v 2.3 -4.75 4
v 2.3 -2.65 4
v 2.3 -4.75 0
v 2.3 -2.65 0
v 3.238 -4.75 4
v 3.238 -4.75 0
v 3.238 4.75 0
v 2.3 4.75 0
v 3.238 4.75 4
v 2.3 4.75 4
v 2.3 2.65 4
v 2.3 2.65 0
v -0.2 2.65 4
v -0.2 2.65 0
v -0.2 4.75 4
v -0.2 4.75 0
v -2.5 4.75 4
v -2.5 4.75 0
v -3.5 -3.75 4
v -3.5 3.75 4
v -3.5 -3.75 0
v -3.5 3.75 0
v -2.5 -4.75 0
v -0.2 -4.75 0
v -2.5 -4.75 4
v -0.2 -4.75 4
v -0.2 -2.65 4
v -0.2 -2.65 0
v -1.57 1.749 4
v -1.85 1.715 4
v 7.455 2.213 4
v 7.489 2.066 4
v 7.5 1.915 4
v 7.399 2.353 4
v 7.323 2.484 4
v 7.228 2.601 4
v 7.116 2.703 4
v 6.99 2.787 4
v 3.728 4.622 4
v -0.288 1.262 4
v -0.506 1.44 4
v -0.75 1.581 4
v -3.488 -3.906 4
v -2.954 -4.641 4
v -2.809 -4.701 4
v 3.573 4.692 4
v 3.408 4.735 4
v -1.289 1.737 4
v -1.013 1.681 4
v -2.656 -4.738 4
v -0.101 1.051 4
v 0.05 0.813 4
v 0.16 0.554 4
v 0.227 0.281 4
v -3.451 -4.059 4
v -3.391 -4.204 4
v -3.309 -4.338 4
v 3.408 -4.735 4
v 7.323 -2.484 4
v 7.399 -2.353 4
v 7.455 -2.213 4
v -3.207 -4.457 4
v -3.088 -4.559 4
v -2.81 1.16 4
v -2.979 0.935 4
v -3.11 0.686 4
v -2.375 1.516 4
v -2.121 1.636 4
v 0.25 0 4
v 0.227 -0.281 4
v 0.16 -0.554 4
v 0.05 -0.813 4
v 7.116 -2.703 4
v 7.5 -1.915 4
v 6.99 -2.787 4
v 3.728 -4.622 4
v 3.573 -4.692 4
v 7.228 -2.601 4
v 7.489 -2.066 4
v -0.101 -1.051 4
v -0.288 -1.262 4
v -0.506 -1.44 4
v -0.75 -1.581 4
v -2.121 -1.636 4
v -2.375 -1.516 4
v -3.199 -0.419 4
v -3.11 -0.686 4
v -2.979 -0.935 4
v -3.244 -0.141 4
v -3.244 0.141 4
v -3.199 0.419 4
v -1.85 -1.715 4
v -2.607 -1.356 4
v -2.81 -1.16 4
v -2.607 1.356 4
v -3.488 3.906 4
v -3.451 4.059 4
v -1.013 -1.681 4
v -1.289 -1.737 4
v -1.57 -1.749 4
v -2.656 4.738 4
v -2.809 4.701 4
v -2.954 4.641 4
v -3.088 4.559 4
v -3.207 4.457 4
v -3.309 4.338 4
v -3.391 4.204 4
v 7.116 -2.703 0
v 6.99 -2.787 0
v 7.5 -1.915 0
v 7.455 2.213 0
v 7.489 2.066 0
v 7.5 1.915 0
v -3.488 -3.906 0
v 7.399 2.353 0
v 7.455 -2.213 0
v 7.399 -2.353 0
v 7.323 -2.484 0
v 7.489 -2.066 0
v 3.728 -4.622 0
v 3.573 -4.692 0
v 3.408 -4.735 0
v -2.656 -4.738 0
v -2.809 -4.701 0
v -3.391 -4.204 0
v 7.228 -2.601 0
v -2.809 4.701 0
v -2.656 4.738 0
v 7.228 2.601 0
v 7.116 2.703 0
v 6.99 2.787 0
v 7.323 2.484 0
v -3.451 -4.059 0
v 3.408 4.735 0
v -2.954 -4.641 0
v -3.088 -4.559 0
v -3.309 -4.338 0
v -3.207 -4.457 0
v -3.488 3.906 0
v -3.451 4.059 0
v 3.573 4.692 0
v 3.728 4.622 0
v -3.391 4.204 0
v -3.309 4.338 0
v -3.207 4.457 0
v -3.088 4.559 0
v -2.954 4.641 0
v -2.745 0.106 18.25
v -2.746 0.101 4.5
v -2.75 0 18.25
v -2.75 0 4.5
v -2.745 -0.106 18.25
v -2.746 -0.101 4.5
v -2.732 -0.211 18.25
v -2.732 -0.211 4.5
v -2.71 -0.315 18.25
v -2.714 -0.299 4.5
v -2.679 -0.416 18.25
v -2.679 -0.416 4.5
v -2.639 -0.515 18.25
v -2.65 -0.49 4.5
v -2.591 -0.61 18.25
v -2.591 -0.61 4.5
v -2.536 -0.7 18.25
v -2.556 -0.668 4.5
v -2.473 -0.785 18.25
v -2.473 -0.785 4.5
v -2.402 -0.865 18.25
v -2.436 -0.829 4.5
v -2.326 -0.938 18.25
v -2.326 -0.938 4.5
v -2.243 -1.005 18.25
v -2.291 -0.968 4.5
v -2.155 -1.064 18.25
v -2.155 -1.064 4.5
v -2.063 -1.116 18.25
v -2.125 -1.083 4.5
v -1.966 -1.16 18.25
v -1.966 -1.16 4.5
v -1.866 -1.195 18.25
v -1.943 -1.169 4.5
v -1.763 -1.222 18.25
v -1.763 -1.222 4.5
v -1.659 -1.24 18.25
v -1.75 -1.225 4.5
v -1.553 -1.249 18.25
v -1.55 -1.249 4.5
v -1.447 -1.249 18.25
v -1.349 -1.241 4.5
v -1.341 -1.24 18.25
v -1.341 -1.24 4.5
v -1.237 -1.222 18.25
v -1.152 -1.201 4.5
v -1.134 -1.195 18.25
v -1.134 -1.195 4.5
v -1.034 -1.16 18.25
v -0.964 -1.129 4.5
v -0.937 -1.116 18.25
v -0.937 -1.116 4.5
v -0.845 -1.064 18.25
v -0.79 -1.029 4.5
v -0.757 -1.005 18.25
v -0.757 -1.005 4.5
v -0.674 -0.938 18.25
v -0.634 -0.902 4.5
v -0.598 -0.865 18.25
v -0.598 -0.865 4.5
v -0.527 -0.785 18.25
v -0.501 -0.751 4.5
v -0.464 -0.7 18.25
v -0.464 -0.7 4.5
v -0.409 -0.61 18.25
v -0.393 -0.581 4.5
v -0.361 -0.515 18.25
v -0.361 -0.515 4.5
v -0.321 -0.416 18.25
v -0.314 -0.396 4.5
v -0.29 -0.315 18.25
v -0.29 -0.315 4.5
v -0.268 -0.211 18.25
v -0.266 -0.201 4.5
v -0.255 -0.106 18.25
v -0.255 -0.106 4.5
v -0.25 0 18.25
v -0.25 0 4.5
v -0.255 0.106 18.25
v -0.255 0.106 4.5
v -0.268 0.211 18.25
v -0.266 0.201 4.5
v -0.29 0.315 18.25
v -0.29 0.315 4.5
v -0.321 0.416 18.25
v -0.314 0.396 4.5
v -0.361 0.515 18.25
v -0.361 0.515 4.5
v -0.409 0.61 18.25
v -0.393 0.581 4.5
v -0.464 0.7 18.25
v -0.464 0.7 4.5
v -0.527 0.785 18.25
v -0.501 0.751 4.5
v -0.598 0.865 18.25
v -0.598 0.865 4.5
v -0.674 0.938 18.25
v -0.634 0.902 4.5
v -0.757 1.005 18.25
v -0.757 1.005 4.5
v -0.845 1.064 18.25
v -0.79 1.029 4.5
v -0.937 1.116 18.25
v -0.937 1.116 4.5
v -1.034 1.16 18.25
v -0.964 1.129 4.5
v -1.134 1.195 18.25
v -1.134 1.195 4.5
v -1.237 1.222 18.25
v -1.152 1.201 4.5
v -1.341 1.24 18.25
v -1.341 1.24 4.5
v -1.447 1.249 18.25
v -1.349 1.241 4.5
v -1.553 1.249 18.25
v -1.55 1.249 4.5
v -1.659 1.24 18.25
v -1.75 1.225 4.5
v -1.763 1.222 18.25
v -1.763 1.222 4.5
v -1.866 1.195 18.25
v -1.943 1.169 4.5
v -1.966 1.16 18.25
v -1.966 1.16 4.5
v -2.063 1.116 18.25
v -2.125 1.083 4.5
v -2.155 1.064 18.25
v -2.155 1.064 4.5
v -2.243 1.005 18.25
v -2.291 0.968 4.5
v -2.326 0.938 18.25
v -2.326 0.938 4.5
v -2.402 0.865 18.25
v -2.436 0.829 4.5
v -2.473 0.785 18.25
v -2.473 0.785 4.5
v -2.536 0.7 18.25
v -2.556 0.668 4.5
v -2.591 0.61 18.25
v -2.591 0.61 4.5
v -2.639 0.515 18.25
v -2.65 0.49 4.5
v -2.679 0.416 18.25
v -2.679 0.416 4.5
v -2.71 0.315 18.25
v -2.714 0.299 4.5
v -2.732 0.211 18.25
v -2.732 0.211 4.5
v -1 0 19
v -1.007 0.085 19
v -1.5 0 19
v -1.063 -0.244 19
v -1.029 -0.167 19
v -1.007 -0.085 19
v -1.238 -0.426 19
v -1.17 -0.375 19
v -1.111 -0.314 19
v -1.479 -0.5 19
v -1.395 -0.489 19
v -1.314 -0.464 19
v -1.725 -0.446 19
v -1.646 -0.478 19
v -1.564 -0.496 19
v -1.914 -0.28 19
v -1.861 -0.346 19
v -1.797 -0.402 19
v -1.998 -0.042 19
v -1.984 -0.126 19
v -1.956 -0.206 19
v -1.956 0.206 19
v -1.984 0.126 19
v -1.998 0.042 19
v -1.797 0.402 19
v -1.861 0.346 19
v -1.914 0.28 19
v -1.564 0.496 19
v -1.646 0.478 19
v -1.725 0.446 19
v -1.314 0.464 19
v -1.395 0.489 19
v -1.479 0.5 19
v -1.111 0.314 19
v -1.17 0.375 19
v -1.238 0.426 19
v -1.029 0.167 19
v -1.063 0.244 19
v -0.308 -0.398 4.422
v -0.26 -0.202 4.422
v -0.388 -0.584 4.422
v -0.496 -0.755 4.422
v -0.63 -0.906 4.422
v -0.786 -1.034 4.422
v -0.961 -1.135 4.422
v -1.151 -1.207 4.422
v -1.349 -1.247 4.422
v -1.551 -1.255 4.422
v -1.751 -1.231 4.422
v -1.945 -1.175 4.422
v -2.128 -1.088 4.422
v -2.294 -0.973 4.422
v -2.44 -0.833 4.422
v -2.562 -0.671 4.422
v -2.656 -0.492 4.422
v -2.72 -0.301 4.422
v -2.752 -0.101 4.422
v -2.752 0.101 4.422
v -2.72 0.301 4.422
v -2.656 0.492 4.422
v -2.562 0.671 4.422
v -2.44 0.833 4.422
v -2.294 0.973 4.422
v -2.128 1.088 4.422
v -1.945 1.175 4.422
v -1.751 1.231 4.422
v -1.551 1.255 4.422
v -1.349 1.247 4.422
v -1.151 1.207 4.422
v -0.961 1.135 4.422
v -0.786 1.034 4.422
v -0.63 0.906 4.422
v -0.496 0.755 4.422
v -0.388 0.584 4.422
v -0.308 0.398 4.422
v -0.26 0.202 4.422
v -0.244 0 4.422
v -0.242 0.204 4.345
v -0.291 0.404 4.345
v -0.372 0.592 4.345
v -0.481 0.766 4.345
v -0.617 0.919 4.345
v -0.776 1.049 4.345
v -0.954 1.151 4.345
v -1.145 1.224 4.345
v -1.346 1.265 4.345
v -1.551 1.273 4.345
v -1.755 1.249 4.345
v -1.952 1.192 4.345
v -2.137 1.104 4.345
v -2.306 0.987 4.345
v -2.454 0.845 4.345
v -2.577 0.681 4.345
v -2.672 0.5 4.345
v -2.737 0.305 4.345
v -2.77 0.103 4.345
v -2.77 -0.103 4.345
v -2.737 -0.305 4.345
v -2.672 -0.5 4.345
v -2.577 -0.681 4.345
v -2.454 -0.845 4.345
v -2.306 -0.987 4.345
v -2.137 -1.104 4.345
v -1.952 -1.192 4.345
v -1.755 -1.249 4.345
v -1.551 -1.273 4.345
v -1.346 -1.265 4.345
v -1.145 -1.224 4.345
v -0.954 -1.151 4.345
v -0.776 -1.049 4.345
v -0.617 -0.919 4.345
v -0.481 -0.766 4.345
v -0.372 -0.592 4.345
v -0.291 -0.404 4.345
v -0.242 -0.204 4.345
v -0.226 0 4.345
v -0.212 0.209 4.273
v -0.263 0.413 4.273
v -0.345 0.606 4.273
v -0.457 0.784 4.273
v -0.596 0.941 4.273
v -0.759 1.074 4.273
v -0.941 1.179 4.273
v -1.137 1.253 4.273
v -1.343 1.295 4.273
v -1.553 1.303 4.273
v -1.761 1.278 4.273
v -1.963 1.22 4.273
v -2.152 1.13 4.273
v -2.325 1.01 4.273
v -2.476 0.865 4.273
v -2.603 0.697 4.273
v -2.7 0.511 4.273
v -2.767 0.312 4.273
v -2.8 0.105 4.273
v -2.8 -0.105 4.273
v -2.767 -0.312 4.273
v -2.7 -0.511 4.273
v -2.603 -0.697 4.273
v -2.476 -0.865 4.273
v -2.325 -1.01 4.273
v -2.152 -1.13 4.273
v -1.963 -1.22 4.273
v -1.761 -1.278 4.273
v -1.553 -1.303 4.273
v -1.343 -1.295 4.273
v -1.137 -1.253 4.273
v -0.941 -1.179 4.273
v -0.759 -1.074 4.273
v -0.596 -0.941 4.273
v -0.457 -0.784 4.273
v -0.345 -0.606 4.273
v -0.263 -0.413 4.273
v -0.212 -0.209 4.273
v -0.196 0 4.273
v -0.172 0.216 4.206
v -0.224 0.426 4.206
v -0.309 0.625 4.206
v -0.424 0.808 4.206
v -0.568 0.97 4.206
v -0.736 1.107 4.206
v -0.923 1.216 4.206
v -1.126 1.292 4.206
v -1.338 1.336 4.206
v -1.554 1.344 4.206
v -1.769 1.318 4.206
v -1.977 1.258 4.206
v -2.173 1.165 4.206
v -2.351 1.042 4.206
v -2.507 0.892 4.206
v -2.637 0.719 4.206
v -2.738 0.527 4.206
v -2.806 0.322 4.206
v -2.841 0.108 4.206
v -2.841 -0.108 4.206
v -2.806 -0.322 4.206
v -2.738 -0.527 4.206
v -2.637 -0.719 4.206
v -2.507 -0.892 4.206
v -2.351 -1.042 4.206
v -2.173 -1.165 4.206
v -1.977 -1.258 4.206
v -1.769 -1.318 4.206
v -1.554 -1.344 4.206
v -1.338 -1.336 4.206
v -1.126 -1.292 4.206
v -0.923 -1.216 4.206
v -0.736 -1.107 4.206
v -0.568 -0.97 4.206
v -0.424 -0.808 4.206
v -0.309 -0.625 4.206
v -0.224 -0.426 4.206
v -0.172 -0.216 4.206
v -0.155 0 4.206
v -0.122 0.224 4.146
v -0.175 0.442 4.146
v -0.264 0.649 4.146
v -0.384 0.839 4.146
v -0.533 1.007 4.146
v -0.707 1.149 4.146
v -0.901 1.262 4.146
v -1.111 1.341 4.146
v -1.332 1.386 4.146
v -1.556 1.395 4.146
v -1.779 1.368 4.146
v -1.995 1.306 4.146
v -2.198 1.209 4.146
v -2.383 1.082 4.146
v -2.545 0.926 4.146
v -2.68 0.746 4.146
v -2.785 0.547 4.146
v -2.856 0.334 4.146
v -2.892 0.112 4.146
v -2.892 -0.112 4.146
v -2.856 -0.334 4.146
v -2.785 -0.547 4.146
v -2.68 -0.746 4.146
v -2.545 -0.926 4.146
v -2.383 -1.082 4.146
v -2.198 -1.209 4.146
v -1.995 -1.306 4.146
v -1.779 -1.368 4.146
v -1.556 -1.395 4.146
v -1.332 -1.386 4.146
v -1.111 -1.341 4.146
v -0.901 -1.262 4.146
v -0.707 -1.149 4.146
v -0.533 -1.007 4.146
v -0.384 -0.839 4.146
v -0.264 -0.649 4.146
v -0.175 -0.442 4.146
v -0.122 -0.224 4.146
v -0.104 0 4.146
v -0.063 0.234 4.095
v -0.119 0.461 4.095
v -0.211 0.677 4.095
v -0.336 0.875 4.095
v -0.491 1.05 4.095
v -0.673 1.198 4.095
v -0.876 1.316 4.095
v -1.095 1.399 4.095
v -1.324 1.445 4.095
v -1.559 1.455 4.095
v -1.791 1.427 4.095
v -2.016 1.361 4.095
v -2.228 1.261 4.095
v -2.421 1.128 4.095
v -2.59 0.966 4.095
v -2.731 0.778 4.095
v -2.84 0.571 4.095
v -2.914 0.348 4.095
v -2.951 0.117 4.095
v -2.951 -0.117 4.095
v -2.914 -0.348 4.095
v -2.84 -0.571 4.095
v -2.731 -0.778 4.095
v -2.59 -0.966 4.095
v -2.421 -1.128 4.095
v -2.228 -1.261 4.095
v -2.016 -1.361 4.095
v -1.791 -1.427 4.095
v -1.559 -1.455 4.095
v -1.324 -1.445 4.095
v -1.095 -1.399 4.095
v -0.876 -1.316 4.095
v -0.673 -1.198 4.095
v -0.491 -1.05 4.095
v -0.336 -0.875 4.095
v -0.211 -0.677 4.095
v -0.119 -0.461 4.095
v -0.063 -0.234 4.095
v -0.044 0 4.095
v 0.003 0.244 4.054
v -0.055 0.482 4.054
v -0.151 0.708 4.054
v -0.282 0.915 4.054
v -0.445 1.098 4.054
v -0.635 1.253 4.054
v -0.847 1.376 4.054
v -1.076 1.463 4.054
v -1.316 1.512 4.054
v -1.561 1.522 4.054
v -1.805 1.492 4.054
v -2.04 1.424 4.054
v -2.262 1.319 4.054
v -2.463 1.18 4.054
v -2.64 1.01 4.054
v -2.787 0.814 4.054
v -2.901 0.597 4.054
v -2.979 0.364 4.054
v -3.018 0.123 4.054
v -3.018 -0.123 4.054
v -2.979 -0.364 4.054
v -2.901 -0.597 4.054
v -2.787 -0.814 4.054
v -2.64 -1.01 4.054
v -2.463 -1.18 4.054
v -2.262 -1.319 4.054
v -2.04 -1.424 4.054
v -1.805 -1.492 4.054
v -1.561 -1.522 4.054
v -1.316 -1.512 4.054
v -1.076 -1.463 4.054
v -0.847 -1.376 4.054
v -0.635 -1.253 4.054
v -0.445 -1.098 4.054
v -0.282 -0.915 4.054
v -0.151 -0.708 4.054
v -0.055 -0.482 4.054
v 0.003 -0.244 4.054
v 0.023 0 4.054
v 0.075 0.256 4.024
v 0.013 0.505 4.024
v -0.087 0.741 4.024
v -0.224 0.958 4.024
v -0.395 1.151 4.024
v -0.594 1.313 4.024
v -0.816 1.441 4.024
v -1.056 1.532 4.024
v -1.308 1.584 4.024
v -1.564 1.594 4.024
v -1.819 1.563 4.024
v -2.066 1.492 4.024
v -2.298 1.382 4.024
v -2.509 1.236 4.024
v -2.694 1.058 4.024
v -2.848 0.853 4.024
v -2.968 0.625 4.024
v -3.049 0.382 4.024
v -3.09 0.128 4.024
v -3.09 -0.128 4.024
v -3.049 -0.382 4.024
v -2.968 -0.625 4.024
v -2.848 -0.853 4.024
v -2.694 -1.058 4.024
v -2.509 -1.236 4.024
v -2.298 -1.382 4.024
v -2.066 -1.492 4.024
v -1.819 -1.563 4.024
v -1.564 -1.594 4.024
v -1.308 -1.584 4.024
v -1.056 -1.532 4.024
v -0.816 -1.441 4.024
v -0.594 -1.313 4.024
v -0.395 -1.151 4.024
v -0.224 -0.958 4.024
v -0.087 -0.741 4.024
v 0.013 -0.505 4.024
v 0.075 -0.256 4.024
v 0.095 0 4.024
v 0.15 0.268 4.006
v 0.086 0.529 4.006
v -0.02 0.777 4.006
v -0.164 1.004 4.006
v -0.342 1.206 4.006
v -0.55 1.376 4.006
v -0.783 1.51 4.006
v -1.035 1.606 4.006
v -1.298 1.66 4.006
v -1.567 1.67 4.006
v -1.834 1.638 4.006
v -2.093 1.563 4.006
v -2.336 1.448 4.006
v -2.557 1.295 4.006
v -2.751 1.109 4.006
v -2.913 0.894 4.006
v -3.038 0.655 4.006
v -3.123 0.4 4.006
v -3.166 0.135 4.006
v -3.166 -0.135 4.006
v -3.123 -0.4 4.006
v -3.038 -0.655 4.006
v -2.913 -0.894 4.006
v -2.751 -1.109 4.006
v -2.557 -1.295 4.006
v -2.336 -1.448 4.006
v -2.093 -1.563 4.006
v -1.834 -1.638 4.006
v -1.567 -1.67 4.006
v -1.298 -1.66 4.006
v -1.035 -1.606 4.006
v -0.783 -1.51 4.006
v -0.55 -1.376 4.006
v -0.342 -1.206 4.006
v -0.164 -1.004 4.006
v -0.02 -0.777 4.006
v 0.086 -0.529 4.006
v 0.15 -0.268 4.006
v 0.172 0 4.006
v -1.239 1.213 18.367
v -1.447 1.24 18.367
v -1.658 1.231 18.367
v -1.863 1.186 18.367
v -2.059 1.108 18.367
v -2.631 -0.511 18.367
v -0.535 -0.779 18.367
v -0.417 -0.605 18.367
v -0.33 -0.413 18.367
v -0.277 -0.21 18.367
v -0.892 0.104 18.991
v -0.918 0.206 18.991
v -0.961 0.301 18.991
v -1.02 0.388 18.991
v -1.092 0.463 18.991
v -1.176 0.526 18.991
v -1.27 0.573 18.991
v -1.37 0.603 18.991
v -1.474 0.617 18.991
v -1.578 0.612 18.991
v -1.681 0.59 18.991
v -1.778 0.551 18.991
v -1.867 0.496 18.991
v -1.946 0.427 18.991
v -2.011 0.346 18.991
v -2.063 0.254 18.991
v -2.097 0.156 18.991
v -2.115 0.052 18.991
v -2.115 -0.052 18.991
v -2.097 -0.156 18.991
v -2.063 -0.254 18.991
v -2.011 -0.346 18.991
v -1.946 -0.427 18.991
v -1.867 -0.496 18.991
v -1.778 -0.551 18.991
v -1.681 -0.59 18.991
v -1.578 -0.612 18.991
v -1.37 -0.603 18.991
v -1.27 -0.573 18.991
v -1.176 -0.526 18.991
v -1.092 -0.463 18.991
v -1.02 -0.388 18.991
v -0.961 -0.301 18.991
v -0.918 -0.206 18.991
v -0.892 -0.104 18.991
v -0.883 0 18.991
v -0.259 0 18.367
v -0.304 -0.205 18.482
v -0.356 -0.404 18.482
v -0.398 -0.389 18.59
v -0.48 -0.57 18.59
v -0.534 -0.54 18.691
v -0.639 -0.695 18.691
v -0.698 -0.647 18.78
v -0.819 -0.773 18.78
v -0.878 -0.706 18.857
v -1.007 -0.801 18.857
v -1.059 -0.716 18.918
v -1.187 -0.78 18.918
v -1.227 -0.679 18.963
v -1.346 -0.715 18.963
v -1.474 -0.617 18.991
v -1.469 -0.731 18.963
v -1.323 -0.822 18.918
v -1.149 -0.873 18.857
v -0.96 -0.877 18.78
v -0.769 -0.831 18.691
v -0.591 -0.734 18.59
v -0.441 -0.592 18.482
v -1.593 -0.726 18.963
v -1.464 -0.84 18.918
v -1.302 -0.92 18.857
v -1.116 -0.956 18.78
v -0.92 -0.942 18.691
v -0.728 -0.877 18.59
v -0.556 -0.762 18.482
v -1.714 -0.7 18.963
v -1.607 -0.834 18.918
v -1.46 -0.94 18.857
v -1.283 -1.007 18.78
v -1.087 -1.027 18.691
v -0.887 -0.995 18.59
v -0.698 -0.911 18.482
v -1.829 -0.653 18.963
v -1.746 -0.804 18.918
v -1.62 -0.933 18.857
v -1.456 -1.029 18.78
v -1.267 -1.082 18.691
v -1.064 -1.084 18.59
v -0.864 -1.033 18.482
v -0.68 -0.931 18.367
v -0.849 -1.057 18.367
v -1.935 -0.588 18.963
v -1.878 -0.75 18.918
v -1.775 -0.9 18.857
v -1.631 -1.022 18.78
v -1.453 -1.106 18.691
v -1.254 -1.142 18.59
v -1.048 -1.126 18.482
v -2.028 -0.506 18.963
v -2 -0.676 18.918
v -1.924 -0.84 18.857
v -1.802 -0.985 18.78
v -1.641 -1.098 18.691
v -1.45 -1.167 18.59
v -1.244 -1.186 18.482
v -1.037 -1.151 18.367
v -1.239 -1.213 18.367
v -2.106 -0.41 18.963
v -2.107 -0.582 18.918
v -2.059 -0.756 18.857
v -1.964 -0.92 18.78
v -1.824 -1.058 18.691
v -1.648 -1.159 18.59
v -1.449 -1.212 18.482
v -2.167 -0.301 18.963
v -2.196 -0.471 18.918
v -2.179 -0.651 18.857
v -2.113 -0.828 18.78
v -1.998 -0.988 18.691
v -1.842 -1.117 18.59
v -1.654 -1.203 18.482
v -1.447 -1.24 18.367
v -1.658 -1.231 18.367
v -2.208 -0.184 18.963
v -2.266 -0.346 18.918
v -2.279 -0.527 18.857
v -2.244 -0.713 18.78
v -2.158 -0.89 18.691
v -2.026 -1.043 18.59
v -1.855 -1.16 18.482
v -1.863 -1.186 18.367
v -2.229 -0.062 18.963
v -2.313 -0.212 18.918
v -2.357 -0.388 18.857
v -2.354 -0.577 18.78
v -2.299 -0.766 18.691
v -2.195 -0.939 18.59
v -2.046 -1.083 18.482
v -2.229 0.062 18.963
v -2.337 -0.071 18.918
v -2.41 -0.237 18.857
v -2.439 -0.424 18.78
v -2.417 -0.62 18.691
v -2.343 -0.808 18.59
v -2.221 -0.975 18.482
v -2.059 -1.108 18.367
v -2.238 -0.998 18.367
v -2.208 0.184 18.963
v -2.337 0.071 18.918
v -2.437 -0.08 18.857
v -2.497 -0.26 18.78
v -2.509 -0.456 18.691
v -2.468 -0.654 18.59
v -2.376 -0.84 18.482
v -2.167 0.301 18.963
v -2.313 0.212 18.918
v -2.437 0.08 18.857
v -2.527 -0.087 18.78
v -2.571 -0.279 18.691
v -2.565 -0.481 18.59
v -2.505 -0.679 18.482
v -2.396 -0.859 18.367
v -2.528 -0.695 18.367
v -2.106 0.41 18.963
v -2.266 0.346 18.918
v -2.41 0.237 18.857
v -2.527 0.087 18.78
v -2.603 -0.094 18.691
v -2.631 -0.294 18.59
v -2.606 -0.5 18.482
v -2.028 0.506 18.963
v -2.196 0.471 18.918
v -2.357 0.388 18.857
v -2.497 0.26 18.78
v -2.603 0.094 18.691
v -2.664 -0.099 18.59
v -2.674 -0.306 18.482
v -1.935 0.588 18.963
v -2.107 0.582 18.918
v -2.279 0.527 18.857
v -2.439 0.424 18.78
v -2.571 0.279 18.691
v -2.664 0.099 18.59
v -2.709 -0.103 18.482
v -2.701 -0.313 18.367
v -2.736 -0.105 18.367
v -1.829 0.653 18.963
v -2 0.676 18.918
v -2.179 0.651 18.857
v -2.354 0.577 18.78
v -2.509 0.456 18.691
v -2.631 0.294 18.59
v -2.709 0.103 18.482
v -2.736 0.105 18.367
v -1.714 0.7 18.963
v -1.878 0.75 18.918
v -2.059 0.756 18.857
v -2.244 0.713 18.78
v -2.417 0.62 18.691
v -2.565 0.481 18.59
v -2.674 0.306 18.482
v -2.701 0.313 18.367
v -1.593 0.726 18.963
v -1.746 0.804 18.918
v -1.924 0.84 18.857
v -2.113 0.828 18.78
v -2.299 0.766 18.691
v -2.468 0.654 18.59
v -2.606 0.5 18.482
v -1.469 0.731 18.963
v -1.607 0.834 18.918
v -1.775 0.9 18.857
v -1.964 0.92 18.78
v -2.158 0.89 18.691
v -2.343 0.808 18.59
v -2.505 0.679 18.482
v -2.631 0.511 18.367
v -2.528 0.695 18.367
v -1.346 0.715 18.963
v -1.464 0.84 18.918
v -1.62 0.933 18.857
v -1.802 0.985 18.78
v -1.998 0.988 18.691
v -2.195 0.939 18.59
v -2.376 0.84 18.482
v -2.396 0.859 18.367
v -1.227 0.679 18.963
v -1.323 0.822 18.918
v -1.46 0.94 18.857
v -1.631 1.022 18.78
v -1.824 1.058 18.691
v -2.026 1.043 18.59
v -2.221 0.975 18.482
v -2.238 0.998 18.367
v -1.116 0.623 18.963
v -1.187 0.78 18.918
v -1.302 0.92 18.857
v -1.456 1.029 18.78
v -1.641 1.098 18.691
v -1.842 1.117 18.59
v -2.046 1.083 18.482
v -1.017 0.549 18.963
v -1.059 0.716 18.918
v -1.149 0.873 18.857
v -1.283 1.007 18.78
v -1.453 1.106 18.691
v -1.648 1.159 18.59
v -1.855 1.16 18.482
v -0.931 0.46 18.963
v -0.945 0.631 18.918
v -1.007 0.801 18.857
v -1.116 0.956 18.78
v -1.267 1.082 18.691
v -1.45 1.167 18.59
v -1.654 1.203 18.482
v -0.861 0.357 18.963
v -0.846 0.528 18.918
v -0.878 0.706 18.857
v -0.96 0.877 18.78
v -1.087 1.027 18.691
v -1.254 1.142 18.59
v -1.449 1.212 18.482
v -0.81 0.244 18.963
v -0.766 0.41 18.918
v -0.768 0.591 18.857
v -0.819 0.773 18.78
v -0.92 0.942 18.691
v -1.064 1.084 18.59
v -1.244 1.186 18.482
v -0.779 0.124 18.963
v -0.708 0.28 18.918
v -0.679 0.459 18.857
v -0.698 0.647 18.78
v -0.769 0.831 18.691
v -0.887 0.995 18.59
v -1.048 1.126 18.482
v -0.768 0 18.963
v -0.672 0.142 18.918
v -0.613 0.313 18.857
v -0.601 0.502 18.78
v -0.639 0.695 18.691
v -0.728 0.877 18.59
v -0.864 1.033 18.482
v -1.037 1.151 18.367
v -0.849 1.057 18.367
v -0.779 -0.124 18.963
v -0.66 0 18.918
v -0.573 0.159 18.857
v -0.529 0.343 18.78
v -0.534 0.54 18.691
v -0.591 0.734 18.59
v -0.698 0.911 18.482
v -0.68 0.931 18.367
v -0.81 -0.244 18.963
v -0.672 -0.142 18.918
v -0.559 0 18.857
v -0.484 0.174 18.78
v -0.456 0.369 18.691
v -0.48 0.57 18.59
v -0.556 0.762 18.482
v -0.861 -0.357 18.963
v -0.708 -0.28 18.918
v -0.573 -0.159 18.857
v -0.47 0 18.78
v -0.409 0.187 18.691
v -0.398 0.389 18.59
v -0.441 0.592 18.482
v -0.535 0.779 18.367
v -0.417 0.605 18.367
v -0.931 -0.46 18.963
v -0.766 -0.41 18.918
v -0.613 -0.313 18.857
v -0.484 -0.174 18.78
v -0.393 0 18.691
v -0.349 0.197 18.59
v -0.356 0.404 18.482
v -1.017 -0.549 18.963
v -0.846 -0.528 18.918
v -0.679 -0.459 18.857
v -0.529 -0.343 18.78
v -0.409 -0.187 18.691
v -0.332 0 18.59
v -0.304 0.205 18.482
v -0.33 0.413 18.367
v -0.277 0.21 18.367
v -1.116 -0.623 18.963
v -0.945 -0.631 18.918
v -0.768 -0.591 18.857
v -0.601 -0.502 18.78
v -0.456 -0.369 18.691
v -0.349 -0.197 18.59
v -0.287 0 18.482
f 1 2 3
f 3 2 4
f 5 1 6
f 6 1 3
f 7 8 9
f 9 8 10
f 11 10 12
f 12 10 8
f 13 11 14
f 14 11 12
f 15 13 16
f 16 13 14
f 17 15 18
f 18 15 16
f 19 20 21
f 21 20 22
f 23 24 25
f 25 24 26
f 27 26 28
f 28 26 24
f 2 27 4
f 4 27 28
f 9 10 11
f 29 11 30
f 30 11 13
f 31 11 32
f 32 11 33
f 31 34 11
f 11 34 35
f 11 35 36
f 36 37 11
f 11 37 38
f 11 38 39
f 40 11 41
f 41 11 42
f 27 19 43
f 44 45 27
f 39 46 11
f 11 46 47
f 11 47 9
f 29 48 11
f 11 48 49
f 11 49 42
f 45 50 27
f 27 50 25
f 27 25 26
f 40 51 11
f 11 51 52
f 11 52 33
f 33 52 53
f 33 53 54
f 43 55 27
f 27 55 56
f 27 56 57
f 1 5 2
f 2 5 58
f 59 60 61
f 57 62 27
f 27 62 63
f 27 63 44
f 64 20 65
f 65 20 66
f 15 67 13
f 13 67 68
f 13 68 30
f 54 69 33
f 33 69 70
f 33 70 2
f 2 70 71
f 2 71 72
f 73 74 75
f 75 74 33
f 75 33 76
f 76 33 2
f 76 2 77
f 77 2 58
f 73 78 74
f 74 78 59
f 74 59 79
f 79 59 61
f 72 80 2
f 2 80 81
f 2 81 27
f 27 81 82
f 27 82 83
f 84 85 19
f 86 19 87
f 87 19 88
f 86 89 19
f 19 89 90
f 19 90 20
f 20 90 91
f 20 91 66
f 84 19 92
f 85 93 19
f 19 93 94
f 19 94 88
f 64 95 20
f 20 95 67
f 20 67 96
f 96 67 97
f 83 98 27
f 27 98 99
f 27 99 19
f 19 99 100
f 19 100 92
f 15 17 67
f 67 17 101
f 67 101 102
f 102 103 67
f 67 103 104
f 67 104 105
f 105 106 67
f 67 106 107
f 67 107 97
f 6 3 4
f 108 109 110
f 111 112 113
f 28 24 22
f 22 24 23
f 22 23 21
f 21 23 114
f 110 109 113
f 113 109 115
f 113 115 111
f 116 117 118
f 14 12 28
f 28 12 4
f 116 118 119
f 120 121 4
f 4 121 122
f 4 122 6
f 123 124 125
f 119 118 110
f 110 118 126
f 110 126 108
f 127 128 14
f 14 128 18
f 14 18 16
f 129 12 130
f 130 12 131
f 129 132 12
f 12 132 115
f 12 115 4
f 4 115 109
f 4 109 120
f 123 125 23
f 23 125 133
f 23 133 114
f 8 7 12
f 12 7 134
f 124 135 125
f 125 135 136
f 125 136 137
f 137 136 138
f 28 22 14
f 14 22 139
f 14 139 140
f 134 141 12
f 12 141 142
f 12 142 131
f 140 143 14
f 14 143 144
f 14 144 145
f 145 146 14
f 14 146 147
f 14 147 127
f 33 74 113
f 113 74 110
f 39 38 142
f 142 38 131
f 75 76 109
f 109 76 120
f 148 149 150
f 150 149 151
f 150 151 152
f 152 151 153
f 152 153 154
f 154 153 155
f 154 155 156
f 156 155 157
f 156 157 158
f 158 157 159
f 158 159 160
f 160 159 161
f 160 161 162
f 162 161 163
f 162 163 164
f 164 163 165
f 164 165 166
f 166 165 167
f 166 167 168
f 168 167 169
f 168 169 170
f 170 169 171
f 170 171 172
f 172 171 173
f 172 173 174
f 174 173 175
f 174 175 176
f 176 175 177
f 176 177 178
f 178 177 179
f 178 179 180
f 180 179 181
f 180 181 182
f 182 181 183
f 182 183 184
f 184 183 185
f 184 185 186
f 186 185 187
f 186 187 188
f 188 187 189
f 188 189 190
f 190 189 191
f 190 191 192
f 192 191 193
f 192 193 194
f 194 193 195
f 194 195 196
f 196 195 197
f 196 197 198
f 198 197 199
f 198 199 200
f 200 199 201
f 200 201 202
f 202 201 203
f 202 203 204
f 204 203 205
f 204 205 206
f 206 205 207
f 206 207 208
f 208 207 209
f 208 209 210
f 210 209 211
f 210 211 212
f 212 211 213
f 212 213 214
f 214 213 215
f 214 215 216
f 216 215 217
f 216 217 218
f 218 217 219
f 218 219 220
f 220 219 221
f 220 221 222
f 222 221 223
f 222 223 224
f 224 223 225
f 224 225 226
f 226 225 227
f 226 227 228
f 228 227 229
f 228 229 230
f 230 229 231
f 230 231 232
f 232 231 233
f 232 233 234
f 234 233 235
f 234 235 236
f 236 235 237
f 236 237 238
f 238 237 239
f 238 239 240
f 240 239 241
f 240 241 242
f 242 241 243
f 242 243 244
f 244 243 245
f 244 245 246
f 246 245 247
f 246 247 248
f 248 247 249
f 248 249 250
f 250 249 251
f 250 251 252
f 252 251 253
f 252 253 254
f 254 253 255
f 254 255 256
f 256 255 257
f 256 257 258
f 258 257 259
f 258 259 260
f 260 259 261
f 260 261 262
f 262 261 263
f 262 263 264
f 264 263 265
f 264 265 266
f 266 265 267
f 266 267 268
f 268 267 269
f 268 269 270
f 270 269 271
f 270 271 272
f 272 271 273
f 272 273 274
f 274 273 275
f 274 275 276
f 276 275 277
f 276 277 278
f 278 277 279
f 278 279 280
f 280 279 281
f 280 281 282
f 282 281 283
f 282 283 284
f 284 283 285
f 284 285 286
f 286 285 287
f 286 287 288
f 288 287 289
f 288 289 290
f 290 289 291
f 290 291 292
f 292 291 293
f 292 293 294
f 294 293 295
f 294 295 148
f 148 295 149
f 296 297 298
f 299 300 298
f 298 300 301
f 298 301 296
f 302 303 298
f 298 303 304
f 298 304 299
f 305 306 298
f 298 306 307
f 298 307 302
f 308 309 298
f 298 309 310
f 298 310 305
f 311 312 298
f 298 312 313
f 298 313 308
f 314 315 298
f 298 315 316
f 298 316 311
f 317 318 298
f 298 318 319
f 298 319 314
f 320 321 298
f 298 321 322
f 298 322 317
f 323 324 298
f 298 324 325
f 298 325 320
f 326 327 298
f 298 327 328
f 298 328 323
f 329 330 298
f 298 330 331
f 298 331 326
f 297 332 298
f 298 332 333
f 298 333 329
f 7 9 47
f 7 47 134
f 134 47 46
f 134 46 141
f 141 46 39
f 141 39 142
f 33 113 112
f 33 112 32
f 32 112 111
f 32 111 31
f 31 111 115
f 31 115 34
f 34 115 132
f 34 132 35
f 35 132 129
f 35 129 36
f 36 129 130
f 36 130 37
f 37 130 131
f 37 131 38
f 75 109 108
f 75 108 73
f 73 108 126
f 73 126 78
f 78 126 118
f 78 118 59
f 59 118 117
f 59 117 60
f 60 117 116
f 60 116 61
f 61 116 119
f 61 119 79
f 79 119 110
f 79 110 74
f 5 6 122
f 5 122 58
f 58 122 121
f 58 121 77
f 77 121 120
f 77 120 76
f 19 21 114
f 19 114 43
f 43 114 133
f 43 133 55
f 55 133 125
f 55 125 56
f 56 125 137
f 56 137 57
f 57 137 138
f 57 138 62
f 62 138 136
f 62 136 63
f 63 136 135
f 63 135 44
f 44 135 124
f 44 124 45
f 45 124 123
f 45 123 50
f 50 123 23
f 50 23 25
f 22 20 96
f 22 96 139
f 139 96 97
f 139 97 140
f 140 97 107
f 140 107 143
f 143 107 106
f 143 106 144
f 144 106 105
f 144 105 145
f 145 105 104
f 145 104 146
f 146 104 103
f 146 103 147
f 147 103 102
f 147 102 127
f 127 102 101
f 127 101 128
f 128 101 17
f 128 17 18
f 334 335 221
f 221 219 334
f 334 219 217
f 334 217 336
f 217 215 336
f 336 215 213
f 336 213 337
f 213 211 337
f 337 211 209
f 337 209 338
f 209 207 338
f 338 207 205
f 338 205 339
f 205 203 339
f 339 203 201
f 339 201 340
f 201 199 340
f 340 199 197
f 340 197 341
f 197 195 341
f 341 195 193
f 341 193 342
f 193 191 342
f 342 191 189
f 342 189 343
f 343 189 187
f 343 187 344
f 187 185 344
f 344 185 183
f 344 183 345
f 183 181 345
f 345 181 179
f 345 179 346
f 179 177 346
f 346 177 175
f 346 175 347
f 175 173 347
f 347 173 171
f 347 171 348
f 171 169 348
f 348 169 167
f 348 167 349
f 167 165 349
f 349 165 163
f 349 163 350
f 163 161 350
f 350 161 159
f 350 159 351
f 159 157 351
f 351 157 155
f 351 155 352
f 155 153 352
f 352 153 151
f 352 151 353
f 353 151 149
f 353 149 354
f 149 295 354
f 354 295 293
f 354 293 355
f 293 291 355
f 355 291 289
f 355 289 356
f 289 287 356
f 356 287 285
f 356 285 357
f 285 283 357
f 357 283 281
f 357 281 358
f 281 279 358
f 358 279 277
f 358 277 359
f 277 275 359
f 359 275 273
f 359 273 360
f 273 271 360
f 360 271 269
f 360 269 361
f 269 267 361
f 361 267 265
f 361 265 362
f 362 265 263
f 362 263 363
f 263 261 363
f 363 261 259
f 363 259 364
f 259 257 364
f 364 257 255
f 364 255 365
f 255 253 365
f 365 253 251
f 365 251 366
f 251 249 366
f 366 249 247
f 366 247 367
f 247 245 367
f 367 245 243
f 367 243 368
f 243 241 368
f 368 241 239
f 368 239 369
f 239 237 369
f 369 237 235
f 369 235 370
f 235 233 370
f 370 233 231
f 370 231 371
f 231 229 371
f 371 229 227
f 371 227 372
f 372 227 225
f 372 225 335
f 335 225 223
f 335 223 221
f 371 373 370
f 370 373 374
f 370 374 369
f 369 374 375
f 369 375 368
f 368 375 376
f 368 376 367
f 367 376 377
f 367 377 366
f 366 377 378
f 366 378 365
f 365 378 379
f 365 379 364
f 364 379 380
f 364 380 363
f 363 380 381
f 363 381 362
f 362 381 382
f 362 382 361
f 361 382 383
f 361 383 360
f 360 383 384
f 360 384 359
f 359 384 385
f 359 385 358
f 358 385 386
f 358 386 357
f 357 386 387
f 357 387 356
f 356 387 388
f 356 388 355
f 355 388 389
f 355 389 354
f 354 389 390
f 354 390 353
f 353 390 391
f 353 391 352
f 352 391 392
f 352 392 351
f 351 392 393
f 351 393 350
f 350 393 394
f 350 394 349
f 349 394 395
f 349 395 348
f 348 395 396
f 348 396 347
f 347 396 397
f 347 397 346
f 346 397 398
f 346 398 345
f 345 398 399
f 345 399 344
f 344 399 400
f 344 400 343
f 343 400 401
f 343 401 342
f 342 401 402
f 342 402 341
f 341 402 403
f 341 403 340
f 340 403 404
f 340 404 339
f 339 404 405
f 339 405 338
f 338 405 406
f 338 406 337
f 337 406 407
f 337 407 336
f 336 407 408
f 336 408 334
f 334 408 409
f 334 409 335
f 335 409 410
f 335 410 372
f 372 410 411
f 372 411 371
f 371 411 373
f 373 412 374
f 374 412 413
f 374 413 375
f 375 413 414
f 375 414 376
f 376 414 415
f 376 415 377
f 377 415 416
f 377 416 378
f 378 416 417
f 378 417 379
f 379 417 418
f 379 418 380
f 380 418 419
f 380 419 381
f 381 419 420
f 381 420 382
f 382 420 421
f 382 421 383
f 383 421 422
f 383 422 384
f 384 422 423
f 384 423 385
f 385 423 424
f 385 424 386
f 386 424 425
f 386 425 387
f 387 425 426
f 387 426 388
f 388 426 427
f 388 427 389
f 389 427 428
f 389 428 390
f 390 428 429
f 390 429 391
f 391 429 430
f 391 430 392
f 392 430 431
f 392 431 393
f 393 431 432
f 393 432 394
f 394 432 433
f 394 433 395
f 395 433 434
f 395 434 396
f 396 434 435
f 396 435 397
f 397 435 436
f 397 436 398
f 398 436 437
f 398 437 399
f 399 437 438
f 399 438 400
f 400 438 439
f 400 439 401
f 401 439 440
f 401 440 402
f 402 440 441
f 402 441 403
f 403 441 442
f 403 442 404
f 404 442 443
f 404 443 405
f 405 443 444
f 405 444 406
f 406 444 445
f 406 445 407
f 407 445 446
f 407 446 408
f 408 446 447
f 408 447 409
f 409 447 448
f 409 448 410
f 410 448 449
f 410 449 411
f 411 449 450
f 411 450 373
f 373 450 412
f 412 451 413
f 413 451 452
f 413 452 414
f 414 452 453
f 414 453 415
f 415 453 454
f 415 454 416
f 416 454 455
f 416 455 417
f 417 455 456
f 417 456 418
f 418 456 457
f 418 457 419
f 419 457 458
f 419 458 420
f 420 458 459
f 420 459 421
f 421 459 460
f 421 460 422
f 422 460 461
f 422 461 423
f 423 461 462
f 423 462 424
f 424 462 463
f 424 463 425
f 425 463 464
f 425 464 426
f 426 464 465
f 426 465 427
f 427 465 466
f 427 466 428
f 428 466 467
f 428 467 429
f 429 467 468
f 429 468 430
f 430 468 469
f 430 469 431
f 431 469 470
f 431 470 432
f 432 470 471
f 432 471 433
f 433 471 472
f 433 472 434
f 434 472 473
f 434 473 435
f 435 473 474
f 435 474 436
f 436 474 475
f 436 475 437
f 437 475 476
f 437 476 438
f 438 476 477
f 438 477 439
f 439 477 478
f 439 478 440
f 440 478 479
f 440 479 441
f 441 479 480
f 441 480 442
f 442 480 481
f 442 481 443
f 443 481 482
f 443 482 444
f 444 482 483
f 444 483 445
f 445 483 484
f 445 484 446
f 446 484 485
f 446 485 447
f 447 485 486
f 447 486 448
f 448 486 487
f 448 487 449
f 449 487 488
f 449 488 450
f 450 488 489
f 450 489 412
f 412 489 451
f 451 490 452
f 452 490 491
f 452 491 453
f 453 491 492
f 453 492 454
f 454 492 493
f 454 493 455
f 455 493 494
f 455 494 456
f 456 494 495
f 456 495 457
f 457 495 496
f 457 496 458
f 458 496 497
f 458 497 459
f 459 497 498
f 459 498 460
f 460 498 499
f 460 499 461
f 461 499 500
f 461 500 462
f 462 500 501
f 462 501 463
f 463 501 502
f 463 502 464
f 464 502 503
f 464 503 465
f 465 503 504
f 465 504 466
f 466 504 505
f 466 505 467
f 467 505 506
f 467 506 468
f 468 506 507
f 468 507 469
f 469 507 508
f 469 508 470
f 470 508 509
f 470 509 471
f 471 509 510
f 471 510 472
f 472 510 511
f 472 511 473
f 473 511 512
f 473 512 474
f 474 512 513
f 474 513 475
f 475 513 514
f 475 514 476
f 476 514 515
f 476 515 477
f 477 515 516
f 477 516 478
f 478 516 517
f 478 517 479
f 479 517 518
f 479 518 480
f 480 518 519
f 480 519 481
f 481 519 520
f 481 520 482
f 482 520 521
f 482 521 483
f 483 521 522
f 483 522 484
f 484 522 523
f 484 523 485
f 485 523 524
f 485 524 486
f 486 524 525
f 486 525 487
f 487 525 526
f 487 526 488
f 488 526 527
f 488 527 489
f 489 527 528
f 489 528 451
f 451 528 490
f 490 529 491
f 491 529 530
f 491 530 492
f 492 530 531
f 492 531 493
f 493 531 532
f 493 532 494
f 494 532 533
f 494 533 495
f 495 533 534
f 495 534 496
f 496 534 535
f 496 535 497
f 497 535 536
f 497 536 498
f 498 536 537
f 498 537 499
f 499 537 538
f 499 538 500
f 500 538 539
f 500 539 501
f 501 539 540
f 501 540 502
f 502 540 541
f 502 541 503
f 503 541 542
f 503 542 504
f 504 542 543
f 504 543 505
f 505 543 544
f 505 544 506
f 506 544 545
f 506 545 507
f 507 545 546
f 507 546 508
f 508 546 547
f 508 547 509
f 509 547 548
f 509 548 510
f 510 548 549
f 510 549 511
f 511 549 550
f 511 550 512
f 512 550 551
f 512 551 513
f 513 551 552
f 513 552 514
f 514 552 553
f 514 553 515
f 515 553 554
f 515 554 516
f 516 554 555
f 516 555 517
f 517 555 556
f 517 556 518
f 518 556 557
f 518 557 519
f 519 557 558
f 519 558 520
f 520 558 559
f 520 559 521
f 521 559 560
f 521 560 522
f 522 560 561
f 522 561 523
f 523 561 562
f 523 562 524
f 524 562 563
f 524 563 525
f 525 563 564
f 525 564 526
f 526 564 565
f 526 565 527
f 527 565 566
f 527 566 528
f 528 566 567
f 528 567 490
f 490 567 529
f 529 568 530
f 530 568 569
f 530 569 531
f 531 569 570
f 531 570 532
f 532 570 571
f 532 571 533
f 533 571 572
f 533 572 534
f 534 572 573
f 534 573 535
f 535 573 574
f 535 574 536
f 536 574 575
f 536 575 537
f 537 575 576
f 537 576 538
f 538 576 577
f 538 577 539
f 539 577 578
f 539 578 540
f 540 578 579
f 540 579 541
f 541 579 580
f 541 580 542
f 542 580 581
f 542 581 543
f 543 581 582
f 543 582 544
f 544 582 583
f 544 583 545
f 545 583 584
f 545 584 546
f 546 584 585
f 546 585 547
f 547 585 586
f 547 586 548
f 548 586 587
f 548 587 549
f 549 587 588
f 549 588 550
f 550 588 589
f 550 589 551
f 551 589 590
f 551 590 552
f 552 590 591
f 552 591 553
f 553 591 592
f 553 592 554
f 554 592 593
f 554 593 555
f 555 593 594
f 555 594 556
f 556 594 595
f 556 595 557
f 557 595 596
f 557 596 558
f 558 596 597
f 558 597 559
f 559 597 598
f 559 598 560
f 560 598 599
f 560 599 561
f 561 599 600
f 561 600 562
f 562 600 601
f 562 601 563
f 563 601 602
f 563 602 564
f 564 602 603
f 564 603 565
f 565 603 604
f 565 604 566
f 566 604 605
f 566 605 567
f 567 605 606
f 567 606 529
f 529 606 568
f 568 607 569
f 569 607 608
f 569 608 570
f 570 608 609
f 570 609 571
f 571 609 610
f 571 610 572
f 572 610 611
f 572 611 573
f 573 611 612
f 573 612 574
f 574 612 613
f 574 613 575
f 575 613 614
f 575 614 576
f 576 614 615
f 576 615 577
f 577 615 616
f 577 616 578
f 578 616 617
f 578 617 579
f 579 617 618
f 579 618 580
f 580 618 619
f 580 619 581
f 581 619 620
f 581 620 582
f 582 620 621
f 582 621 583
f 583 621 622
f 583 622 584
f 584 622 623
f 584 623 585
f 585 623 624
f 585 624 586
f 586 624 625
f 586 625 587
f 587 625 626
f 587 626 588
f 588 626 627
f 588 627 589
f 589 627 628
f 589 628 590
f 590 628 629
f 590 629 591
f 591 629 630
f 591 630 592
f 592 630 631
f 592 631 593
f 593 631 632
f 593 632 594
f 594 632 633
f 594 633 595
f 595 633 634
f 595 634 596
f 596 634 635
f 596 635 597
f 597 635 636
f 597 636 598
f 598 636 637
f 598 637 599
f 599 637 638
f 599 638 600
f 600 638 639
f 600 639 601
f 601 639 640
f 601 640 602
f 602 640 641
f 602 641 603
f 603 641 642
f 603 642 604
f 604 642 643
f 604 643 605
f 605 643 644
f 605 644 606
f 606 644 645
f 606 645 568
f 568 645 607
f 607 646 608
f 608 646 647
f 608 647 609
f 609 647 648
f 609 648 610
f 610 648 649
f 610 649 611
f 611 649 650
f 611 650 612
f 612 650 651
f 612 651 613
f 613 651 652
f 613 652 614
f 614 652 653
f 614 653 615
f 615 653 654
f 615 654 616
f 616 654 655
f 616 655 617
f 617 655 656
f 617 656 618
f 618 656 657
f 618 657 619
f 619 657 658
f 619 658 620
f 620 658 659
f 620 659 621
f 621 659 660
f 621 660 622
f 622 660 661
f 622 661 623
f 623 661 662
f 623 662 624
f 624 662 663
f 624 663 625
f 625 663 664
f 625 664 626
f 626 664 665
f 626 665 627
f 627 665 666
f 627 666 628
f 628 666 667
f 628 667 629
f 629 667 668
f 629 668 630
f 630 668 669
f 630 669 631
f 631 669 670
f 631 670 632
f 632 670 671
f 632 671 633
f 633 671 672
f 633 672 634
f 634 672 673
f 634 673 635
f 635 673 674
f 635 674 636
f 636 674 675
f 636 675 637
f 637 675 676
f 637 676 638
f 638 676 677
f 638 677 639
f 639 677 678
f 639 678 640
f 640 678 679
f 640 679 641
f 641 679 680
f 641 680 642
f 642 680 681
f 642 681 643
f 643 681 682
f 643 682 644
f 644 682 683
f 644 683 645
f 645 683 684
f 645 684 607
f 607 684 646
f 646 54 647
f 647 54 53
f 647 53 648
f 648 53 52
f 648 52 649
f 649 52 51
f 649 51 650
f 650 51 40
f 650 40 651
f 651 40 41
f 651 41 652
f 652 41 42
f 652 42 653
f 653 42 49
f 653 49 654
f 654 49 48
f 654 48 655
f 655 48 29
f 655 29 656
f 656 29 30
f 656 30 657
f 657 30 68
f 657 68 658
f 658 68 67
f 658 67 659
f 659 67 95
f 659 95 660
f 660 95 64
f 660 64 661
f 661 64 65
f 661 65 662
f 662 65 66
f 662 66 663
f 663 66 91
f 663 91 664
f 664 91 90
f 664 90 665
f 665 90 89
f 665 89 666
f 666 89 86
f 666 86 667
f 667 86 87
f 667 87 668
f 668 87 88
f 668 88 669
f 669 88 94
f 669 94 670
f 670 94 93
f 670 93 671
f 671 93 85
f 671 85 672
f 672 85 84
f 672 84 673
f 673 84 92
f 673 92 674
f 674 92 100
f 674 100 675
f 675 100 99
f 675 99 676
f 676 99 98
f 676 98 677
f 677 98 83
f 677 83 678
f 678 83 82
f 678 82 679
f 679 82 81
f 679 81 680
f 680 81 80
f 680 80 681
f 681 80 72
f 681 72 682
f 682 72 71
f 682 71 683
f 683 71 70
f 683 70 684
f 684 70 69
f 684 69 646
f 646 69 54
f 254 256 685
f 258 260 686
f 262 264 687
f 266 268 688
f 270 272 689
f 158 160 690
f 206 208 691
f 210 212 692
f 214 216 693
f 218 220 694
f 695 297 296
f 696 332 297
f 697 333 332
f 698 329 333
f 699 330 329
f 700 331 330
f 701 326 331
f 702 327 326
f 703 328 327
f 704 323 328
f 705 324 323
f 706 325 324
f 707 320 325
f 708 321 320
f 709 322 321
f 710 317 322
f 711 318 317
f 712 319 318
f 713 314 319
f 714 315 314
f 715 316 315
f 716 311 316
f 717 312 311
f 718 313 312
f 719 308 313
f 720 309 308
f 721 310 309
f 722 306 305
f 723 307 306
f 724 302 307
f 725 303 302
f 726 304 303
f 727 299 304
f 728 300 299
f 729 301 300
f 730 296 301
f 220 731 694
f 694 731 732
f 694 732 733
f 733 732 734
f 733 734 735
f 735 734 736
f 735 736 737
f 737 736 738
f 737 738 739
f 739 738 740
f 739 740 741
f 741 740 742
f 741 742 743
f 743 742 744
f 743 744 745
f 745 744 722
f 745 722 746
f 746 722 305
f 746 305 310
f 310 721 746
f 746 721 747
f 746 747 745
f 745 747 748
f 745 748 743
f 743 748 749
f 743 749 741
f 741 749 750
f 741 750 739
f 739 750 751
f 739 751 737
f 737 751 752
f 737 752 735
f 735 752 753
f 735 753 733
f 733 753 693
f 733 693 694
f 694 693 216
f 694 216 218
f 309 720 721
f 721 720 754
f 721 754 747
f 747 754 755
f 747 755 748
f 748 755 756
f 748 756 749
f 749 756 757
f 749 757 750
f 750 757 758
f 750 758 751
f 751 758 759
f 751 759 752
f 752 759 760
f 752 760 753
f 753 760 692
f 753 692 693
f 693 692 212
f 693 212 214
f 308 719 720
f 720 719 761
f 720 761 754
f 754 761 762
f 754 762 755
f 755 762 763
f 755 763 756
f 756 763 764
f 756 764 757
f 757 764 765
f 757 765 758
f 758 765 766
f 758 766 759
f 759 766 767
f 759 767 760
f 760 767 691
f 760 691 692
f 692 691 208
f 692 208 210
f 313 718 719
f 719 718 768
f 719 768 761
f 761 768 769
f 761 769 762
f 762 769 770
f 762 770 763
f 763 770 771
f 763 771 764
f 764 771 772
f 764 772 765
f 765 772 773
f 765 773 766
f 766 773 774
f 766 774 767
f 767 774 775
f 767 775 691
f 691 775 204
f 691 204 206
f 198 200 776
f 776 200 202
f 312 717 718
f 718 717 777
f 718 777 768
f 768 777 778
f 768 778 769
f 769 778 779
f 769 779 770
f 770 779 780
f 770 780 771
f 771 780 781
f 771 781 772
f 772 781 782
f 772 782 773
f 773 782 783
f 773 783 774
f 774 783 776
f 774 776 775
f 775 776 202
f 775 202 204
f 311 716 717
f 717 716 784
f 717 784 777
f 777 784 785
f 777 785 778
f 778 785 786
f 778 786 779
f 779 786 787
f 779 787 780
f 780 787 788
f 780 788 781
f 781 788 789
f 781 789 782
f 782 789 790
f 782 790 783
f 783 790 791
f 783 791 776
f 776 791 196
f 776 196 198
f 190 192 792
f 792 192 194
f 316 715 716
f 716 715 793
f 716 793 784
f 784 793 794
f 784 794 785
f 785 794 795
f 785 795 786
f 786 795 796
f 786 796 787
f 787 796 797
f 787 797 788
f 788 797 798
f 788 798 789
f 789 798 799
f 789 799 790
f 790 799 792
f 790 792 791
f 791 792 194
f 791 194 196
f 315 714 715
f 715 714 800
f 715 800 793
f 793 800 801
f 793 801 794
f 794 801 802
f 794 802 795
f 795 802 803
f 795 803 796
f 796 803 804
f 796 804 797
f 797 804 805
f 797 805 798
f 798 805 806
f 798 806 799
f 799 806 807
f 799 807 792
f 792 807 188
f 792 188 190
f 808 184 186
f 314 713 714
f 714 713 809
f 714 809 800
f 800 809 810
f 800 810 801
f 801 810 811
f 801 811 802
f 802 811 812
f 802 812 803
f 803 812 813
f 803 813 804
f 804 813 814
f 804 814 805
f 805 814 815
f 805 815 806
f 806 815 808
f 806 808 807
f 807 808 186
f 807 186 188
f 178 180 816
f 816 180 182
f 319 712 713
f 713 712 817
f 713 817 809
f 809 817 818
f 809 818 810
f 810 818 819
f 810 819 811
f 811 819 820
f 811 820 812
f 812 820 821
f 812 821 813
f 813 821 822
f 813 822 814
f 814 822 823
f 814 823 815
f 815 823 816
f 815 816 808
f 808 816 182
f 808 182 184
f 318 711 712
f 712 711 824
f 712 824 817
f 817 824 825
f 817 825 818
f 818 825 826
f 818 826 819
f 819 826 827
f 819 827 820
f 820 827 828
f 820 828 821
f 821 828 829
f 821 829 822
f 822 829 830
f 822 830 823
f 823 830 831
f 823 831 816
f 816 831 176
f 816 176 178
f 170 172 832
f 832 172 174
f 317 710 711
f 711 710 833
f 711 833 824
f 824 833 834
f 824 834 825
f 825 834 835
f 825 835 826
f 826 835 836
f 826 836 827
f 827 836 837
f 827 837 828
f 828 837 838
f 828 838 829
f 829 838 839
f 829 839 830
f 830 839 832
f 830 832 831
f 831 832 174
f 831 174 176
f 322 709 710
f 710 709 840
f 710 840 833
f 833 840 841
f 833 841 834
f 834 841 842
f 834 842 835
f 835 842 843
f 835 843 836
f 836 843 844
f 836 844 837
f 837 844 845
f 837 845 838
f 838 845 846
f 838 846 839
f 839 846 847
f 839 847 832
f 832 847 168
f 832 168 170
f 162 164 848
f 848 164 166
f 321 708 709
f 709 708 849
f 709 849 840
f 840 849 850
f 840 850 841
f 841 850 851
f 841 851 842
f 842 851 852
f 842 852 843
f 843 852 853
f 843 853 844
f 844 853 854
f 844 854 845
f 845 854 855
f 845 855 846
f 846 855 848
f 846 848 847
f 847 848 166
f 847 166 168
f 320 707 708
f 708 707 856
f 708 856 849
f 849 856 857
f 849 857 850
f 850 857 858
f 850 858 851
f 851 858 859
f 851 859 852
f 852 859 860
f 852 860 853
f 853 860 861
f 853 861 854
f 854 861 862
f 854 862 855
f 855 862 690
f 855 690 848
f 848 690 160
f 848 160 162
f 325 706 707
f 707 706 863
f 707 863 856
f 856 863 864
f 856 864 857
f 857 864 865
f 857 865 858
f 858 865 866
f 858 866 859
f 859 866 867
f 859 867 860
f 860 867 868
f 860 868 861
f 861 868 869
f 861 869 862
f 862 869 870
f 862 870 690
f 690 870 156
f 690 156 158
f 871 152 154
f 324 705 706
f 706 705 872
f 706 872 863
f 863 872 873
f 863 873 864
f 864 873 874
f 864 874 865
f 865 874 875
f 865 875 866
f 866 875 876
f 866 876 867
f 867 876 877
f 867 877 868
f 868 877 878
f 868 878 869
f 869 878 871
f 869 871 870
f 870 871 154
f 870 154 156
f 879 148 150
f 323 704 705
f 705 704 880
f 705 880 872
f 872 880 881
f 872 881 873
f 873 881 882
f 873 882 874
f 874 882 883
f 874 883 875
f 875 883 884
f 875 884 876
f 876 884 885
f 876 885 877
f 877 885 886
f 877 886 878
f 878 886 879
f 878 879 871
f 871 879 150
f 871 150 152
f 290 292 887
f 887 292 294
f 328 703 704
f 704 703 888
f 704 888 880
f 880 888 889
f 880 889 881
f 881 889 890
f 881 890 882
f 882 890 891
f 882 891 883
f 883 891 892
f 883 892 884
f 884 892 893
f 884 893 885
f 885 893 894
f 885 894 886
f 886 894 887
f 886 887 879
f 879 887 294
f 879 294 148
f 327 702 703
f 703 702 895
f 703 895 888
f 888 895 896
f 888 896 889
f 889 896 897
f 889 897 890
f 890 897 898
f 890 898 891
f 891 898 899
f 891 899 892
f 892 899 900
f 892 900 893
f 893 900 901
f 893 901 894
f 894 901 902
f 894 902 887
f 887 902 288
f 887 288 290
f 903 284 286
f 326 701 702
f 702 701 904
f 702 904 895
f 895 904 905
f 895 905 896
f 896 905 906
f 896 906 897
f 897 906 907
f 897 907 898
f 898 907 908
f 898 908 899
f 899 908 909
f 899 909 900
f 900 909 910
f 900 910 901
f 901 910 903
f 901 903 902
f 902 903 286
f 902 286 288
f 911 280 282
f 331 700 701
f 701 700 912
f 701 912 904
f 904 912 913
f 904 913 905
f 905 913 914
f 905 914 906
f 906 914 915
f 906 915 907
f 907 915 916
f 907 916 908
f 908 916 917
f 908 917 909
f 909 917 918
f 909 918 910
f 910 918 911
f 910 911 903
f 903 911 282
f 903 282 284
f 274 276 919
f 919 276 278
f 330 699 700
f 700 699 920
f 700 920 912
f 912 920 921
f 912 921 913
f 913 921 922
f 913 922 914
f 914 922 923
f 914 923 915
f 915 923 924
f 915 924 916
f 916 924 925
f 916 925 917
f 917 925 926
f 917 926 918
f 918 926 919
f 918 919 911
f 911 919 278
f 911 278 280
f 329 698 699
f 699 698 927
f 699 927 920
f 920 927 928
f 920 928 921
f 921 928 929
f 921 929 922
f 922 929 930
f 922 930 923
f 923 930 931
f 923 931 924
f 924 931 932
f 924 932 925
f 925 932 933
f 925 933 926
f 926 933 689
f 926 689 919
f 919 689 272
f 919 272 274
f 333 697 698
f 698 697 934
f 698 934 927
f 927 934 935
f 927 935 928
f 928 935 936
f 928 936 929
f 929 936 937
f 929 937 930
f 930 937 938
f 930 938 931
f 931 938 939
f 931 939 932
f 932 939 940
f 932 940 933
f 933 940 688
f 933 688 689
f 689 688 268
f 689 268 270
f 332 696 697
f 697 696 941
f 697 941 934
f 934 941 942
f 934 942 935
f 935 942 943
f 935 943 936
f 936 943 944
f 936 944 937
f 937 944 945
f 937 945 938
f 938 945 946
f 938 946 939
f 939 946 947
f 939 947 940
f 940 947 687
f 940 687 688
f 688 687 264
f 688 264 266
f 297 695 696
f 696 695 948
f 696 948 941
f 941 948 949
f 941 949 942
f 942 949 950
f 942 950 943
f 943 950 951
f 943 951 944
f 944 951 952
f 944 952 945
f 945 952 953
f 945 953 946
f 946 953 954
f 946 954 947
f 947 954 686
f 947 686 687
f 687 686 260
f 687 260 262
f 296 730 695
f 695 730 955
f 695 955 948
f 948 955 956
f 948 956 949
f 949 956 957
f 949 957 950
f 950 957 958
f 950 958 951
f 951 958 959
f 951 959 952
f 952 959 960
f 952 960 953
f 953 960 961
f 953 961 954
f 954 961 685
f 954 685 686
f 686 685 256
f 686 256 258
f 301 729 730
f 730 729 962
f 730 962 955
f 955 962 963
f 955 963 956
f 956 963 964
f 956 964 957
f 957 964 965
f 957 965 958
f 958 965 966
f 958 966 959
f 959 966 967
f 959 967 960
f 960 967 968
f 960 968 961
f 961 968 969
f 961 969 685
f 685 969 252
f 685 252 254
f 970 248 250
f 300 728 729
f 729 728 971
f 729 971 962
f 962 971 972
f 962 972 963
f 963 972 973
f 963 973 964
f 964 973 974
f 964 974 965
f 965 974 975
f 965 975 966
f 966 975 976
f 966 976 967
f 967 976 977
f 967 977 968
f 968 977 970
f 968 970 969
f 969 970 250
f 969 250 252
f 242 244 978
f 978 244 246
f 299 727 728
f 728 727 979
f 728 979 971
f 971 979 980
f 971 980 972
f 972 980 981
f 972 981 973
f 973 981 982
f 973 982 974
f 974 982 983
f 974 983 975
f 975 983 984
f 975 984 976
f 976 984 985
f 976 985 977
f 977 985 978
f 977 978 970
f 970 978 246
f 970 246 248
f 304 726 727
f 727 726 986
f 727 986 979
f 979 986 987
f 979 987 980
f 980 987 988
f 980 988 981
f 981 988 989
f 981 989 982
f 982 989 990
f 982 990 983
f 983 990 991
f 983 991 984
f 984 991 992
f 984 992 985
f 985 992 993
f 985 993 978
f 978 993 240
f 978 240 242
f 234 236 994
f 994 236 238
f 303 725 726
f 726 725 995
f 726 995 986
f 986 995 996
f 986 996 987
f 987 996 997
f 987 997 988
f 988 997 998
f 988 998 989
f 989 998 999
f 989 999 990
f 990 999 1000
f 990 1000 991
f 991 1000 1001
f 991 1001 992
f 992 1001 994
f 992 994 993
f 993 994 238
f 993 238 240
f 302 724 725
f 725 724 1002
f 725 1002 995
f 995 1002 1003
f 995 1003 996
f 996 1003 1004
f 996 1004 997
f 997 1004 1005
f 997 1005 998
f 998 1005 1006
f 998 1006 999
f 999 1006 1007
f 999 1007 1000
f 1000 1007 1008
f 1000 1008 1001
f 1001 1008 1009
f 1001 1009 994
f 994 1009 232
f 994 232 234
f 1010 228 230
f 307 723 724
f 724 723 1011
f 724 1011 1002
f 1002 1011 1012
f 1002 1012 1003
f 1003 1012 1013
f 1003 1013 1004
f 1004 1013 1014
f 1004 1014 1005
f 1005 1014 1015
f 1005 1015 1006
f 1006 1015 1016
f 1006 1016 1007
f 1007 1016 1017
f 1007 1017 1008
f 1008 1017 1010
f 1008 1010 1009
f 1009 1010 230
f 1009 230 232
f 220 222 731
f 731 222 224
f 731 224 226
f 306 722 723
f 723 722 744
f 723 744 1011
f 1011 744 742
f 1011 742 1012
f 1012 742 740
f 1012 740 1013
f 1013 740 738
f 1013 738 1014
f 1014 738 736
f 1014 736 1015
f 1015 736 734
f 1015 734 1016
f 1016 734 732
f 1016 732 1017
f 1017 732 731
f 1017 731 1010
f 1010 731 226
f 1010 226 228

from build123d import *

# Parameters (mm, degrees)
BOSS_EXTRUDE1_DEPTH = 4
BOSS_EXTRUDE2_DEPTH = 4
SKETCH3_R           = 1.25
BOSS_EXTRUDE3_DEPTH = 15
FILLET1_R           = 1
FILLET2_R           = 0.5
FILLET3_R           = 0.75


with BuildPart() as part:
    # Sketch1 → Boss-Extrude1 (new body)
    with BuildSketch(Plane.XY):
        Polygon((2.3, -4.75), (3.5, -4.75), (3.5, 4.75), (2.3, 4.75), (2.3, 2.65), (-0.2, 2.65), (-0.2, 4.75), (-3.5, 4.75), (-3.5, -4.75), (-0.2, -4.75), (-0.2, -2.65), (2.3, -2.65), align=None)
    extrude(amount=BOSS_EXTRUDE1_DEPTH)

    # Sketch2 → Boss-Extrude2 (add)
    with BuildSketch(Plane(origin=(0, 0, 0), x_dir=(-1, 0, 0), z_dir=(0, 0, -1))):
        Polygon((-7.5, 2.5), (-7.5, -2.5), (-3.5, -4.75), (-3.5, 4.75), align=None)
    extrude(amount=-BOSS_EXTRUDE2_DEPTH)

    # Sketch3 → Boss-Extrude3 (add)
    with BuildSketch(Plane.XY.offset(4)):
        with Locations((-1.5, 0)):
            Circle(SKETCH3_R)
    extrude(amount=BOSS_EXTRUDE3_DEPTH)

    # Fillet1
    fillet1_edges = [part.edges().sort_by_distance(p)[0] for p in [
        (-3.5, -4.75, 2),
        (-3.5, 4.75, 2),
        (3.5, 4.75, 2),
        (3.5, -4.75, 2),
        (7.5, -2.5, 2),
        (7.5, 2.5, 2),
    ]]
    fillet(fillet1_edges, radius=FILLET1_R)

    # Fillet2
    fillet2_edges = [part.edges().sort_by_distance(p)[0] for p in [
        (-2.75, 0, 4),
    ]]
    fillet(fillet2_edges, radius=FILLET2_R)

    # Fillet3
    fillet3_edges = [part.edges().sort_by_distance(p)[0] for p in [
        (-2.75, 0, 19),
    ]]
    fillet(fillet3_edges, radius=FILLET3_R)


solid = part.part
